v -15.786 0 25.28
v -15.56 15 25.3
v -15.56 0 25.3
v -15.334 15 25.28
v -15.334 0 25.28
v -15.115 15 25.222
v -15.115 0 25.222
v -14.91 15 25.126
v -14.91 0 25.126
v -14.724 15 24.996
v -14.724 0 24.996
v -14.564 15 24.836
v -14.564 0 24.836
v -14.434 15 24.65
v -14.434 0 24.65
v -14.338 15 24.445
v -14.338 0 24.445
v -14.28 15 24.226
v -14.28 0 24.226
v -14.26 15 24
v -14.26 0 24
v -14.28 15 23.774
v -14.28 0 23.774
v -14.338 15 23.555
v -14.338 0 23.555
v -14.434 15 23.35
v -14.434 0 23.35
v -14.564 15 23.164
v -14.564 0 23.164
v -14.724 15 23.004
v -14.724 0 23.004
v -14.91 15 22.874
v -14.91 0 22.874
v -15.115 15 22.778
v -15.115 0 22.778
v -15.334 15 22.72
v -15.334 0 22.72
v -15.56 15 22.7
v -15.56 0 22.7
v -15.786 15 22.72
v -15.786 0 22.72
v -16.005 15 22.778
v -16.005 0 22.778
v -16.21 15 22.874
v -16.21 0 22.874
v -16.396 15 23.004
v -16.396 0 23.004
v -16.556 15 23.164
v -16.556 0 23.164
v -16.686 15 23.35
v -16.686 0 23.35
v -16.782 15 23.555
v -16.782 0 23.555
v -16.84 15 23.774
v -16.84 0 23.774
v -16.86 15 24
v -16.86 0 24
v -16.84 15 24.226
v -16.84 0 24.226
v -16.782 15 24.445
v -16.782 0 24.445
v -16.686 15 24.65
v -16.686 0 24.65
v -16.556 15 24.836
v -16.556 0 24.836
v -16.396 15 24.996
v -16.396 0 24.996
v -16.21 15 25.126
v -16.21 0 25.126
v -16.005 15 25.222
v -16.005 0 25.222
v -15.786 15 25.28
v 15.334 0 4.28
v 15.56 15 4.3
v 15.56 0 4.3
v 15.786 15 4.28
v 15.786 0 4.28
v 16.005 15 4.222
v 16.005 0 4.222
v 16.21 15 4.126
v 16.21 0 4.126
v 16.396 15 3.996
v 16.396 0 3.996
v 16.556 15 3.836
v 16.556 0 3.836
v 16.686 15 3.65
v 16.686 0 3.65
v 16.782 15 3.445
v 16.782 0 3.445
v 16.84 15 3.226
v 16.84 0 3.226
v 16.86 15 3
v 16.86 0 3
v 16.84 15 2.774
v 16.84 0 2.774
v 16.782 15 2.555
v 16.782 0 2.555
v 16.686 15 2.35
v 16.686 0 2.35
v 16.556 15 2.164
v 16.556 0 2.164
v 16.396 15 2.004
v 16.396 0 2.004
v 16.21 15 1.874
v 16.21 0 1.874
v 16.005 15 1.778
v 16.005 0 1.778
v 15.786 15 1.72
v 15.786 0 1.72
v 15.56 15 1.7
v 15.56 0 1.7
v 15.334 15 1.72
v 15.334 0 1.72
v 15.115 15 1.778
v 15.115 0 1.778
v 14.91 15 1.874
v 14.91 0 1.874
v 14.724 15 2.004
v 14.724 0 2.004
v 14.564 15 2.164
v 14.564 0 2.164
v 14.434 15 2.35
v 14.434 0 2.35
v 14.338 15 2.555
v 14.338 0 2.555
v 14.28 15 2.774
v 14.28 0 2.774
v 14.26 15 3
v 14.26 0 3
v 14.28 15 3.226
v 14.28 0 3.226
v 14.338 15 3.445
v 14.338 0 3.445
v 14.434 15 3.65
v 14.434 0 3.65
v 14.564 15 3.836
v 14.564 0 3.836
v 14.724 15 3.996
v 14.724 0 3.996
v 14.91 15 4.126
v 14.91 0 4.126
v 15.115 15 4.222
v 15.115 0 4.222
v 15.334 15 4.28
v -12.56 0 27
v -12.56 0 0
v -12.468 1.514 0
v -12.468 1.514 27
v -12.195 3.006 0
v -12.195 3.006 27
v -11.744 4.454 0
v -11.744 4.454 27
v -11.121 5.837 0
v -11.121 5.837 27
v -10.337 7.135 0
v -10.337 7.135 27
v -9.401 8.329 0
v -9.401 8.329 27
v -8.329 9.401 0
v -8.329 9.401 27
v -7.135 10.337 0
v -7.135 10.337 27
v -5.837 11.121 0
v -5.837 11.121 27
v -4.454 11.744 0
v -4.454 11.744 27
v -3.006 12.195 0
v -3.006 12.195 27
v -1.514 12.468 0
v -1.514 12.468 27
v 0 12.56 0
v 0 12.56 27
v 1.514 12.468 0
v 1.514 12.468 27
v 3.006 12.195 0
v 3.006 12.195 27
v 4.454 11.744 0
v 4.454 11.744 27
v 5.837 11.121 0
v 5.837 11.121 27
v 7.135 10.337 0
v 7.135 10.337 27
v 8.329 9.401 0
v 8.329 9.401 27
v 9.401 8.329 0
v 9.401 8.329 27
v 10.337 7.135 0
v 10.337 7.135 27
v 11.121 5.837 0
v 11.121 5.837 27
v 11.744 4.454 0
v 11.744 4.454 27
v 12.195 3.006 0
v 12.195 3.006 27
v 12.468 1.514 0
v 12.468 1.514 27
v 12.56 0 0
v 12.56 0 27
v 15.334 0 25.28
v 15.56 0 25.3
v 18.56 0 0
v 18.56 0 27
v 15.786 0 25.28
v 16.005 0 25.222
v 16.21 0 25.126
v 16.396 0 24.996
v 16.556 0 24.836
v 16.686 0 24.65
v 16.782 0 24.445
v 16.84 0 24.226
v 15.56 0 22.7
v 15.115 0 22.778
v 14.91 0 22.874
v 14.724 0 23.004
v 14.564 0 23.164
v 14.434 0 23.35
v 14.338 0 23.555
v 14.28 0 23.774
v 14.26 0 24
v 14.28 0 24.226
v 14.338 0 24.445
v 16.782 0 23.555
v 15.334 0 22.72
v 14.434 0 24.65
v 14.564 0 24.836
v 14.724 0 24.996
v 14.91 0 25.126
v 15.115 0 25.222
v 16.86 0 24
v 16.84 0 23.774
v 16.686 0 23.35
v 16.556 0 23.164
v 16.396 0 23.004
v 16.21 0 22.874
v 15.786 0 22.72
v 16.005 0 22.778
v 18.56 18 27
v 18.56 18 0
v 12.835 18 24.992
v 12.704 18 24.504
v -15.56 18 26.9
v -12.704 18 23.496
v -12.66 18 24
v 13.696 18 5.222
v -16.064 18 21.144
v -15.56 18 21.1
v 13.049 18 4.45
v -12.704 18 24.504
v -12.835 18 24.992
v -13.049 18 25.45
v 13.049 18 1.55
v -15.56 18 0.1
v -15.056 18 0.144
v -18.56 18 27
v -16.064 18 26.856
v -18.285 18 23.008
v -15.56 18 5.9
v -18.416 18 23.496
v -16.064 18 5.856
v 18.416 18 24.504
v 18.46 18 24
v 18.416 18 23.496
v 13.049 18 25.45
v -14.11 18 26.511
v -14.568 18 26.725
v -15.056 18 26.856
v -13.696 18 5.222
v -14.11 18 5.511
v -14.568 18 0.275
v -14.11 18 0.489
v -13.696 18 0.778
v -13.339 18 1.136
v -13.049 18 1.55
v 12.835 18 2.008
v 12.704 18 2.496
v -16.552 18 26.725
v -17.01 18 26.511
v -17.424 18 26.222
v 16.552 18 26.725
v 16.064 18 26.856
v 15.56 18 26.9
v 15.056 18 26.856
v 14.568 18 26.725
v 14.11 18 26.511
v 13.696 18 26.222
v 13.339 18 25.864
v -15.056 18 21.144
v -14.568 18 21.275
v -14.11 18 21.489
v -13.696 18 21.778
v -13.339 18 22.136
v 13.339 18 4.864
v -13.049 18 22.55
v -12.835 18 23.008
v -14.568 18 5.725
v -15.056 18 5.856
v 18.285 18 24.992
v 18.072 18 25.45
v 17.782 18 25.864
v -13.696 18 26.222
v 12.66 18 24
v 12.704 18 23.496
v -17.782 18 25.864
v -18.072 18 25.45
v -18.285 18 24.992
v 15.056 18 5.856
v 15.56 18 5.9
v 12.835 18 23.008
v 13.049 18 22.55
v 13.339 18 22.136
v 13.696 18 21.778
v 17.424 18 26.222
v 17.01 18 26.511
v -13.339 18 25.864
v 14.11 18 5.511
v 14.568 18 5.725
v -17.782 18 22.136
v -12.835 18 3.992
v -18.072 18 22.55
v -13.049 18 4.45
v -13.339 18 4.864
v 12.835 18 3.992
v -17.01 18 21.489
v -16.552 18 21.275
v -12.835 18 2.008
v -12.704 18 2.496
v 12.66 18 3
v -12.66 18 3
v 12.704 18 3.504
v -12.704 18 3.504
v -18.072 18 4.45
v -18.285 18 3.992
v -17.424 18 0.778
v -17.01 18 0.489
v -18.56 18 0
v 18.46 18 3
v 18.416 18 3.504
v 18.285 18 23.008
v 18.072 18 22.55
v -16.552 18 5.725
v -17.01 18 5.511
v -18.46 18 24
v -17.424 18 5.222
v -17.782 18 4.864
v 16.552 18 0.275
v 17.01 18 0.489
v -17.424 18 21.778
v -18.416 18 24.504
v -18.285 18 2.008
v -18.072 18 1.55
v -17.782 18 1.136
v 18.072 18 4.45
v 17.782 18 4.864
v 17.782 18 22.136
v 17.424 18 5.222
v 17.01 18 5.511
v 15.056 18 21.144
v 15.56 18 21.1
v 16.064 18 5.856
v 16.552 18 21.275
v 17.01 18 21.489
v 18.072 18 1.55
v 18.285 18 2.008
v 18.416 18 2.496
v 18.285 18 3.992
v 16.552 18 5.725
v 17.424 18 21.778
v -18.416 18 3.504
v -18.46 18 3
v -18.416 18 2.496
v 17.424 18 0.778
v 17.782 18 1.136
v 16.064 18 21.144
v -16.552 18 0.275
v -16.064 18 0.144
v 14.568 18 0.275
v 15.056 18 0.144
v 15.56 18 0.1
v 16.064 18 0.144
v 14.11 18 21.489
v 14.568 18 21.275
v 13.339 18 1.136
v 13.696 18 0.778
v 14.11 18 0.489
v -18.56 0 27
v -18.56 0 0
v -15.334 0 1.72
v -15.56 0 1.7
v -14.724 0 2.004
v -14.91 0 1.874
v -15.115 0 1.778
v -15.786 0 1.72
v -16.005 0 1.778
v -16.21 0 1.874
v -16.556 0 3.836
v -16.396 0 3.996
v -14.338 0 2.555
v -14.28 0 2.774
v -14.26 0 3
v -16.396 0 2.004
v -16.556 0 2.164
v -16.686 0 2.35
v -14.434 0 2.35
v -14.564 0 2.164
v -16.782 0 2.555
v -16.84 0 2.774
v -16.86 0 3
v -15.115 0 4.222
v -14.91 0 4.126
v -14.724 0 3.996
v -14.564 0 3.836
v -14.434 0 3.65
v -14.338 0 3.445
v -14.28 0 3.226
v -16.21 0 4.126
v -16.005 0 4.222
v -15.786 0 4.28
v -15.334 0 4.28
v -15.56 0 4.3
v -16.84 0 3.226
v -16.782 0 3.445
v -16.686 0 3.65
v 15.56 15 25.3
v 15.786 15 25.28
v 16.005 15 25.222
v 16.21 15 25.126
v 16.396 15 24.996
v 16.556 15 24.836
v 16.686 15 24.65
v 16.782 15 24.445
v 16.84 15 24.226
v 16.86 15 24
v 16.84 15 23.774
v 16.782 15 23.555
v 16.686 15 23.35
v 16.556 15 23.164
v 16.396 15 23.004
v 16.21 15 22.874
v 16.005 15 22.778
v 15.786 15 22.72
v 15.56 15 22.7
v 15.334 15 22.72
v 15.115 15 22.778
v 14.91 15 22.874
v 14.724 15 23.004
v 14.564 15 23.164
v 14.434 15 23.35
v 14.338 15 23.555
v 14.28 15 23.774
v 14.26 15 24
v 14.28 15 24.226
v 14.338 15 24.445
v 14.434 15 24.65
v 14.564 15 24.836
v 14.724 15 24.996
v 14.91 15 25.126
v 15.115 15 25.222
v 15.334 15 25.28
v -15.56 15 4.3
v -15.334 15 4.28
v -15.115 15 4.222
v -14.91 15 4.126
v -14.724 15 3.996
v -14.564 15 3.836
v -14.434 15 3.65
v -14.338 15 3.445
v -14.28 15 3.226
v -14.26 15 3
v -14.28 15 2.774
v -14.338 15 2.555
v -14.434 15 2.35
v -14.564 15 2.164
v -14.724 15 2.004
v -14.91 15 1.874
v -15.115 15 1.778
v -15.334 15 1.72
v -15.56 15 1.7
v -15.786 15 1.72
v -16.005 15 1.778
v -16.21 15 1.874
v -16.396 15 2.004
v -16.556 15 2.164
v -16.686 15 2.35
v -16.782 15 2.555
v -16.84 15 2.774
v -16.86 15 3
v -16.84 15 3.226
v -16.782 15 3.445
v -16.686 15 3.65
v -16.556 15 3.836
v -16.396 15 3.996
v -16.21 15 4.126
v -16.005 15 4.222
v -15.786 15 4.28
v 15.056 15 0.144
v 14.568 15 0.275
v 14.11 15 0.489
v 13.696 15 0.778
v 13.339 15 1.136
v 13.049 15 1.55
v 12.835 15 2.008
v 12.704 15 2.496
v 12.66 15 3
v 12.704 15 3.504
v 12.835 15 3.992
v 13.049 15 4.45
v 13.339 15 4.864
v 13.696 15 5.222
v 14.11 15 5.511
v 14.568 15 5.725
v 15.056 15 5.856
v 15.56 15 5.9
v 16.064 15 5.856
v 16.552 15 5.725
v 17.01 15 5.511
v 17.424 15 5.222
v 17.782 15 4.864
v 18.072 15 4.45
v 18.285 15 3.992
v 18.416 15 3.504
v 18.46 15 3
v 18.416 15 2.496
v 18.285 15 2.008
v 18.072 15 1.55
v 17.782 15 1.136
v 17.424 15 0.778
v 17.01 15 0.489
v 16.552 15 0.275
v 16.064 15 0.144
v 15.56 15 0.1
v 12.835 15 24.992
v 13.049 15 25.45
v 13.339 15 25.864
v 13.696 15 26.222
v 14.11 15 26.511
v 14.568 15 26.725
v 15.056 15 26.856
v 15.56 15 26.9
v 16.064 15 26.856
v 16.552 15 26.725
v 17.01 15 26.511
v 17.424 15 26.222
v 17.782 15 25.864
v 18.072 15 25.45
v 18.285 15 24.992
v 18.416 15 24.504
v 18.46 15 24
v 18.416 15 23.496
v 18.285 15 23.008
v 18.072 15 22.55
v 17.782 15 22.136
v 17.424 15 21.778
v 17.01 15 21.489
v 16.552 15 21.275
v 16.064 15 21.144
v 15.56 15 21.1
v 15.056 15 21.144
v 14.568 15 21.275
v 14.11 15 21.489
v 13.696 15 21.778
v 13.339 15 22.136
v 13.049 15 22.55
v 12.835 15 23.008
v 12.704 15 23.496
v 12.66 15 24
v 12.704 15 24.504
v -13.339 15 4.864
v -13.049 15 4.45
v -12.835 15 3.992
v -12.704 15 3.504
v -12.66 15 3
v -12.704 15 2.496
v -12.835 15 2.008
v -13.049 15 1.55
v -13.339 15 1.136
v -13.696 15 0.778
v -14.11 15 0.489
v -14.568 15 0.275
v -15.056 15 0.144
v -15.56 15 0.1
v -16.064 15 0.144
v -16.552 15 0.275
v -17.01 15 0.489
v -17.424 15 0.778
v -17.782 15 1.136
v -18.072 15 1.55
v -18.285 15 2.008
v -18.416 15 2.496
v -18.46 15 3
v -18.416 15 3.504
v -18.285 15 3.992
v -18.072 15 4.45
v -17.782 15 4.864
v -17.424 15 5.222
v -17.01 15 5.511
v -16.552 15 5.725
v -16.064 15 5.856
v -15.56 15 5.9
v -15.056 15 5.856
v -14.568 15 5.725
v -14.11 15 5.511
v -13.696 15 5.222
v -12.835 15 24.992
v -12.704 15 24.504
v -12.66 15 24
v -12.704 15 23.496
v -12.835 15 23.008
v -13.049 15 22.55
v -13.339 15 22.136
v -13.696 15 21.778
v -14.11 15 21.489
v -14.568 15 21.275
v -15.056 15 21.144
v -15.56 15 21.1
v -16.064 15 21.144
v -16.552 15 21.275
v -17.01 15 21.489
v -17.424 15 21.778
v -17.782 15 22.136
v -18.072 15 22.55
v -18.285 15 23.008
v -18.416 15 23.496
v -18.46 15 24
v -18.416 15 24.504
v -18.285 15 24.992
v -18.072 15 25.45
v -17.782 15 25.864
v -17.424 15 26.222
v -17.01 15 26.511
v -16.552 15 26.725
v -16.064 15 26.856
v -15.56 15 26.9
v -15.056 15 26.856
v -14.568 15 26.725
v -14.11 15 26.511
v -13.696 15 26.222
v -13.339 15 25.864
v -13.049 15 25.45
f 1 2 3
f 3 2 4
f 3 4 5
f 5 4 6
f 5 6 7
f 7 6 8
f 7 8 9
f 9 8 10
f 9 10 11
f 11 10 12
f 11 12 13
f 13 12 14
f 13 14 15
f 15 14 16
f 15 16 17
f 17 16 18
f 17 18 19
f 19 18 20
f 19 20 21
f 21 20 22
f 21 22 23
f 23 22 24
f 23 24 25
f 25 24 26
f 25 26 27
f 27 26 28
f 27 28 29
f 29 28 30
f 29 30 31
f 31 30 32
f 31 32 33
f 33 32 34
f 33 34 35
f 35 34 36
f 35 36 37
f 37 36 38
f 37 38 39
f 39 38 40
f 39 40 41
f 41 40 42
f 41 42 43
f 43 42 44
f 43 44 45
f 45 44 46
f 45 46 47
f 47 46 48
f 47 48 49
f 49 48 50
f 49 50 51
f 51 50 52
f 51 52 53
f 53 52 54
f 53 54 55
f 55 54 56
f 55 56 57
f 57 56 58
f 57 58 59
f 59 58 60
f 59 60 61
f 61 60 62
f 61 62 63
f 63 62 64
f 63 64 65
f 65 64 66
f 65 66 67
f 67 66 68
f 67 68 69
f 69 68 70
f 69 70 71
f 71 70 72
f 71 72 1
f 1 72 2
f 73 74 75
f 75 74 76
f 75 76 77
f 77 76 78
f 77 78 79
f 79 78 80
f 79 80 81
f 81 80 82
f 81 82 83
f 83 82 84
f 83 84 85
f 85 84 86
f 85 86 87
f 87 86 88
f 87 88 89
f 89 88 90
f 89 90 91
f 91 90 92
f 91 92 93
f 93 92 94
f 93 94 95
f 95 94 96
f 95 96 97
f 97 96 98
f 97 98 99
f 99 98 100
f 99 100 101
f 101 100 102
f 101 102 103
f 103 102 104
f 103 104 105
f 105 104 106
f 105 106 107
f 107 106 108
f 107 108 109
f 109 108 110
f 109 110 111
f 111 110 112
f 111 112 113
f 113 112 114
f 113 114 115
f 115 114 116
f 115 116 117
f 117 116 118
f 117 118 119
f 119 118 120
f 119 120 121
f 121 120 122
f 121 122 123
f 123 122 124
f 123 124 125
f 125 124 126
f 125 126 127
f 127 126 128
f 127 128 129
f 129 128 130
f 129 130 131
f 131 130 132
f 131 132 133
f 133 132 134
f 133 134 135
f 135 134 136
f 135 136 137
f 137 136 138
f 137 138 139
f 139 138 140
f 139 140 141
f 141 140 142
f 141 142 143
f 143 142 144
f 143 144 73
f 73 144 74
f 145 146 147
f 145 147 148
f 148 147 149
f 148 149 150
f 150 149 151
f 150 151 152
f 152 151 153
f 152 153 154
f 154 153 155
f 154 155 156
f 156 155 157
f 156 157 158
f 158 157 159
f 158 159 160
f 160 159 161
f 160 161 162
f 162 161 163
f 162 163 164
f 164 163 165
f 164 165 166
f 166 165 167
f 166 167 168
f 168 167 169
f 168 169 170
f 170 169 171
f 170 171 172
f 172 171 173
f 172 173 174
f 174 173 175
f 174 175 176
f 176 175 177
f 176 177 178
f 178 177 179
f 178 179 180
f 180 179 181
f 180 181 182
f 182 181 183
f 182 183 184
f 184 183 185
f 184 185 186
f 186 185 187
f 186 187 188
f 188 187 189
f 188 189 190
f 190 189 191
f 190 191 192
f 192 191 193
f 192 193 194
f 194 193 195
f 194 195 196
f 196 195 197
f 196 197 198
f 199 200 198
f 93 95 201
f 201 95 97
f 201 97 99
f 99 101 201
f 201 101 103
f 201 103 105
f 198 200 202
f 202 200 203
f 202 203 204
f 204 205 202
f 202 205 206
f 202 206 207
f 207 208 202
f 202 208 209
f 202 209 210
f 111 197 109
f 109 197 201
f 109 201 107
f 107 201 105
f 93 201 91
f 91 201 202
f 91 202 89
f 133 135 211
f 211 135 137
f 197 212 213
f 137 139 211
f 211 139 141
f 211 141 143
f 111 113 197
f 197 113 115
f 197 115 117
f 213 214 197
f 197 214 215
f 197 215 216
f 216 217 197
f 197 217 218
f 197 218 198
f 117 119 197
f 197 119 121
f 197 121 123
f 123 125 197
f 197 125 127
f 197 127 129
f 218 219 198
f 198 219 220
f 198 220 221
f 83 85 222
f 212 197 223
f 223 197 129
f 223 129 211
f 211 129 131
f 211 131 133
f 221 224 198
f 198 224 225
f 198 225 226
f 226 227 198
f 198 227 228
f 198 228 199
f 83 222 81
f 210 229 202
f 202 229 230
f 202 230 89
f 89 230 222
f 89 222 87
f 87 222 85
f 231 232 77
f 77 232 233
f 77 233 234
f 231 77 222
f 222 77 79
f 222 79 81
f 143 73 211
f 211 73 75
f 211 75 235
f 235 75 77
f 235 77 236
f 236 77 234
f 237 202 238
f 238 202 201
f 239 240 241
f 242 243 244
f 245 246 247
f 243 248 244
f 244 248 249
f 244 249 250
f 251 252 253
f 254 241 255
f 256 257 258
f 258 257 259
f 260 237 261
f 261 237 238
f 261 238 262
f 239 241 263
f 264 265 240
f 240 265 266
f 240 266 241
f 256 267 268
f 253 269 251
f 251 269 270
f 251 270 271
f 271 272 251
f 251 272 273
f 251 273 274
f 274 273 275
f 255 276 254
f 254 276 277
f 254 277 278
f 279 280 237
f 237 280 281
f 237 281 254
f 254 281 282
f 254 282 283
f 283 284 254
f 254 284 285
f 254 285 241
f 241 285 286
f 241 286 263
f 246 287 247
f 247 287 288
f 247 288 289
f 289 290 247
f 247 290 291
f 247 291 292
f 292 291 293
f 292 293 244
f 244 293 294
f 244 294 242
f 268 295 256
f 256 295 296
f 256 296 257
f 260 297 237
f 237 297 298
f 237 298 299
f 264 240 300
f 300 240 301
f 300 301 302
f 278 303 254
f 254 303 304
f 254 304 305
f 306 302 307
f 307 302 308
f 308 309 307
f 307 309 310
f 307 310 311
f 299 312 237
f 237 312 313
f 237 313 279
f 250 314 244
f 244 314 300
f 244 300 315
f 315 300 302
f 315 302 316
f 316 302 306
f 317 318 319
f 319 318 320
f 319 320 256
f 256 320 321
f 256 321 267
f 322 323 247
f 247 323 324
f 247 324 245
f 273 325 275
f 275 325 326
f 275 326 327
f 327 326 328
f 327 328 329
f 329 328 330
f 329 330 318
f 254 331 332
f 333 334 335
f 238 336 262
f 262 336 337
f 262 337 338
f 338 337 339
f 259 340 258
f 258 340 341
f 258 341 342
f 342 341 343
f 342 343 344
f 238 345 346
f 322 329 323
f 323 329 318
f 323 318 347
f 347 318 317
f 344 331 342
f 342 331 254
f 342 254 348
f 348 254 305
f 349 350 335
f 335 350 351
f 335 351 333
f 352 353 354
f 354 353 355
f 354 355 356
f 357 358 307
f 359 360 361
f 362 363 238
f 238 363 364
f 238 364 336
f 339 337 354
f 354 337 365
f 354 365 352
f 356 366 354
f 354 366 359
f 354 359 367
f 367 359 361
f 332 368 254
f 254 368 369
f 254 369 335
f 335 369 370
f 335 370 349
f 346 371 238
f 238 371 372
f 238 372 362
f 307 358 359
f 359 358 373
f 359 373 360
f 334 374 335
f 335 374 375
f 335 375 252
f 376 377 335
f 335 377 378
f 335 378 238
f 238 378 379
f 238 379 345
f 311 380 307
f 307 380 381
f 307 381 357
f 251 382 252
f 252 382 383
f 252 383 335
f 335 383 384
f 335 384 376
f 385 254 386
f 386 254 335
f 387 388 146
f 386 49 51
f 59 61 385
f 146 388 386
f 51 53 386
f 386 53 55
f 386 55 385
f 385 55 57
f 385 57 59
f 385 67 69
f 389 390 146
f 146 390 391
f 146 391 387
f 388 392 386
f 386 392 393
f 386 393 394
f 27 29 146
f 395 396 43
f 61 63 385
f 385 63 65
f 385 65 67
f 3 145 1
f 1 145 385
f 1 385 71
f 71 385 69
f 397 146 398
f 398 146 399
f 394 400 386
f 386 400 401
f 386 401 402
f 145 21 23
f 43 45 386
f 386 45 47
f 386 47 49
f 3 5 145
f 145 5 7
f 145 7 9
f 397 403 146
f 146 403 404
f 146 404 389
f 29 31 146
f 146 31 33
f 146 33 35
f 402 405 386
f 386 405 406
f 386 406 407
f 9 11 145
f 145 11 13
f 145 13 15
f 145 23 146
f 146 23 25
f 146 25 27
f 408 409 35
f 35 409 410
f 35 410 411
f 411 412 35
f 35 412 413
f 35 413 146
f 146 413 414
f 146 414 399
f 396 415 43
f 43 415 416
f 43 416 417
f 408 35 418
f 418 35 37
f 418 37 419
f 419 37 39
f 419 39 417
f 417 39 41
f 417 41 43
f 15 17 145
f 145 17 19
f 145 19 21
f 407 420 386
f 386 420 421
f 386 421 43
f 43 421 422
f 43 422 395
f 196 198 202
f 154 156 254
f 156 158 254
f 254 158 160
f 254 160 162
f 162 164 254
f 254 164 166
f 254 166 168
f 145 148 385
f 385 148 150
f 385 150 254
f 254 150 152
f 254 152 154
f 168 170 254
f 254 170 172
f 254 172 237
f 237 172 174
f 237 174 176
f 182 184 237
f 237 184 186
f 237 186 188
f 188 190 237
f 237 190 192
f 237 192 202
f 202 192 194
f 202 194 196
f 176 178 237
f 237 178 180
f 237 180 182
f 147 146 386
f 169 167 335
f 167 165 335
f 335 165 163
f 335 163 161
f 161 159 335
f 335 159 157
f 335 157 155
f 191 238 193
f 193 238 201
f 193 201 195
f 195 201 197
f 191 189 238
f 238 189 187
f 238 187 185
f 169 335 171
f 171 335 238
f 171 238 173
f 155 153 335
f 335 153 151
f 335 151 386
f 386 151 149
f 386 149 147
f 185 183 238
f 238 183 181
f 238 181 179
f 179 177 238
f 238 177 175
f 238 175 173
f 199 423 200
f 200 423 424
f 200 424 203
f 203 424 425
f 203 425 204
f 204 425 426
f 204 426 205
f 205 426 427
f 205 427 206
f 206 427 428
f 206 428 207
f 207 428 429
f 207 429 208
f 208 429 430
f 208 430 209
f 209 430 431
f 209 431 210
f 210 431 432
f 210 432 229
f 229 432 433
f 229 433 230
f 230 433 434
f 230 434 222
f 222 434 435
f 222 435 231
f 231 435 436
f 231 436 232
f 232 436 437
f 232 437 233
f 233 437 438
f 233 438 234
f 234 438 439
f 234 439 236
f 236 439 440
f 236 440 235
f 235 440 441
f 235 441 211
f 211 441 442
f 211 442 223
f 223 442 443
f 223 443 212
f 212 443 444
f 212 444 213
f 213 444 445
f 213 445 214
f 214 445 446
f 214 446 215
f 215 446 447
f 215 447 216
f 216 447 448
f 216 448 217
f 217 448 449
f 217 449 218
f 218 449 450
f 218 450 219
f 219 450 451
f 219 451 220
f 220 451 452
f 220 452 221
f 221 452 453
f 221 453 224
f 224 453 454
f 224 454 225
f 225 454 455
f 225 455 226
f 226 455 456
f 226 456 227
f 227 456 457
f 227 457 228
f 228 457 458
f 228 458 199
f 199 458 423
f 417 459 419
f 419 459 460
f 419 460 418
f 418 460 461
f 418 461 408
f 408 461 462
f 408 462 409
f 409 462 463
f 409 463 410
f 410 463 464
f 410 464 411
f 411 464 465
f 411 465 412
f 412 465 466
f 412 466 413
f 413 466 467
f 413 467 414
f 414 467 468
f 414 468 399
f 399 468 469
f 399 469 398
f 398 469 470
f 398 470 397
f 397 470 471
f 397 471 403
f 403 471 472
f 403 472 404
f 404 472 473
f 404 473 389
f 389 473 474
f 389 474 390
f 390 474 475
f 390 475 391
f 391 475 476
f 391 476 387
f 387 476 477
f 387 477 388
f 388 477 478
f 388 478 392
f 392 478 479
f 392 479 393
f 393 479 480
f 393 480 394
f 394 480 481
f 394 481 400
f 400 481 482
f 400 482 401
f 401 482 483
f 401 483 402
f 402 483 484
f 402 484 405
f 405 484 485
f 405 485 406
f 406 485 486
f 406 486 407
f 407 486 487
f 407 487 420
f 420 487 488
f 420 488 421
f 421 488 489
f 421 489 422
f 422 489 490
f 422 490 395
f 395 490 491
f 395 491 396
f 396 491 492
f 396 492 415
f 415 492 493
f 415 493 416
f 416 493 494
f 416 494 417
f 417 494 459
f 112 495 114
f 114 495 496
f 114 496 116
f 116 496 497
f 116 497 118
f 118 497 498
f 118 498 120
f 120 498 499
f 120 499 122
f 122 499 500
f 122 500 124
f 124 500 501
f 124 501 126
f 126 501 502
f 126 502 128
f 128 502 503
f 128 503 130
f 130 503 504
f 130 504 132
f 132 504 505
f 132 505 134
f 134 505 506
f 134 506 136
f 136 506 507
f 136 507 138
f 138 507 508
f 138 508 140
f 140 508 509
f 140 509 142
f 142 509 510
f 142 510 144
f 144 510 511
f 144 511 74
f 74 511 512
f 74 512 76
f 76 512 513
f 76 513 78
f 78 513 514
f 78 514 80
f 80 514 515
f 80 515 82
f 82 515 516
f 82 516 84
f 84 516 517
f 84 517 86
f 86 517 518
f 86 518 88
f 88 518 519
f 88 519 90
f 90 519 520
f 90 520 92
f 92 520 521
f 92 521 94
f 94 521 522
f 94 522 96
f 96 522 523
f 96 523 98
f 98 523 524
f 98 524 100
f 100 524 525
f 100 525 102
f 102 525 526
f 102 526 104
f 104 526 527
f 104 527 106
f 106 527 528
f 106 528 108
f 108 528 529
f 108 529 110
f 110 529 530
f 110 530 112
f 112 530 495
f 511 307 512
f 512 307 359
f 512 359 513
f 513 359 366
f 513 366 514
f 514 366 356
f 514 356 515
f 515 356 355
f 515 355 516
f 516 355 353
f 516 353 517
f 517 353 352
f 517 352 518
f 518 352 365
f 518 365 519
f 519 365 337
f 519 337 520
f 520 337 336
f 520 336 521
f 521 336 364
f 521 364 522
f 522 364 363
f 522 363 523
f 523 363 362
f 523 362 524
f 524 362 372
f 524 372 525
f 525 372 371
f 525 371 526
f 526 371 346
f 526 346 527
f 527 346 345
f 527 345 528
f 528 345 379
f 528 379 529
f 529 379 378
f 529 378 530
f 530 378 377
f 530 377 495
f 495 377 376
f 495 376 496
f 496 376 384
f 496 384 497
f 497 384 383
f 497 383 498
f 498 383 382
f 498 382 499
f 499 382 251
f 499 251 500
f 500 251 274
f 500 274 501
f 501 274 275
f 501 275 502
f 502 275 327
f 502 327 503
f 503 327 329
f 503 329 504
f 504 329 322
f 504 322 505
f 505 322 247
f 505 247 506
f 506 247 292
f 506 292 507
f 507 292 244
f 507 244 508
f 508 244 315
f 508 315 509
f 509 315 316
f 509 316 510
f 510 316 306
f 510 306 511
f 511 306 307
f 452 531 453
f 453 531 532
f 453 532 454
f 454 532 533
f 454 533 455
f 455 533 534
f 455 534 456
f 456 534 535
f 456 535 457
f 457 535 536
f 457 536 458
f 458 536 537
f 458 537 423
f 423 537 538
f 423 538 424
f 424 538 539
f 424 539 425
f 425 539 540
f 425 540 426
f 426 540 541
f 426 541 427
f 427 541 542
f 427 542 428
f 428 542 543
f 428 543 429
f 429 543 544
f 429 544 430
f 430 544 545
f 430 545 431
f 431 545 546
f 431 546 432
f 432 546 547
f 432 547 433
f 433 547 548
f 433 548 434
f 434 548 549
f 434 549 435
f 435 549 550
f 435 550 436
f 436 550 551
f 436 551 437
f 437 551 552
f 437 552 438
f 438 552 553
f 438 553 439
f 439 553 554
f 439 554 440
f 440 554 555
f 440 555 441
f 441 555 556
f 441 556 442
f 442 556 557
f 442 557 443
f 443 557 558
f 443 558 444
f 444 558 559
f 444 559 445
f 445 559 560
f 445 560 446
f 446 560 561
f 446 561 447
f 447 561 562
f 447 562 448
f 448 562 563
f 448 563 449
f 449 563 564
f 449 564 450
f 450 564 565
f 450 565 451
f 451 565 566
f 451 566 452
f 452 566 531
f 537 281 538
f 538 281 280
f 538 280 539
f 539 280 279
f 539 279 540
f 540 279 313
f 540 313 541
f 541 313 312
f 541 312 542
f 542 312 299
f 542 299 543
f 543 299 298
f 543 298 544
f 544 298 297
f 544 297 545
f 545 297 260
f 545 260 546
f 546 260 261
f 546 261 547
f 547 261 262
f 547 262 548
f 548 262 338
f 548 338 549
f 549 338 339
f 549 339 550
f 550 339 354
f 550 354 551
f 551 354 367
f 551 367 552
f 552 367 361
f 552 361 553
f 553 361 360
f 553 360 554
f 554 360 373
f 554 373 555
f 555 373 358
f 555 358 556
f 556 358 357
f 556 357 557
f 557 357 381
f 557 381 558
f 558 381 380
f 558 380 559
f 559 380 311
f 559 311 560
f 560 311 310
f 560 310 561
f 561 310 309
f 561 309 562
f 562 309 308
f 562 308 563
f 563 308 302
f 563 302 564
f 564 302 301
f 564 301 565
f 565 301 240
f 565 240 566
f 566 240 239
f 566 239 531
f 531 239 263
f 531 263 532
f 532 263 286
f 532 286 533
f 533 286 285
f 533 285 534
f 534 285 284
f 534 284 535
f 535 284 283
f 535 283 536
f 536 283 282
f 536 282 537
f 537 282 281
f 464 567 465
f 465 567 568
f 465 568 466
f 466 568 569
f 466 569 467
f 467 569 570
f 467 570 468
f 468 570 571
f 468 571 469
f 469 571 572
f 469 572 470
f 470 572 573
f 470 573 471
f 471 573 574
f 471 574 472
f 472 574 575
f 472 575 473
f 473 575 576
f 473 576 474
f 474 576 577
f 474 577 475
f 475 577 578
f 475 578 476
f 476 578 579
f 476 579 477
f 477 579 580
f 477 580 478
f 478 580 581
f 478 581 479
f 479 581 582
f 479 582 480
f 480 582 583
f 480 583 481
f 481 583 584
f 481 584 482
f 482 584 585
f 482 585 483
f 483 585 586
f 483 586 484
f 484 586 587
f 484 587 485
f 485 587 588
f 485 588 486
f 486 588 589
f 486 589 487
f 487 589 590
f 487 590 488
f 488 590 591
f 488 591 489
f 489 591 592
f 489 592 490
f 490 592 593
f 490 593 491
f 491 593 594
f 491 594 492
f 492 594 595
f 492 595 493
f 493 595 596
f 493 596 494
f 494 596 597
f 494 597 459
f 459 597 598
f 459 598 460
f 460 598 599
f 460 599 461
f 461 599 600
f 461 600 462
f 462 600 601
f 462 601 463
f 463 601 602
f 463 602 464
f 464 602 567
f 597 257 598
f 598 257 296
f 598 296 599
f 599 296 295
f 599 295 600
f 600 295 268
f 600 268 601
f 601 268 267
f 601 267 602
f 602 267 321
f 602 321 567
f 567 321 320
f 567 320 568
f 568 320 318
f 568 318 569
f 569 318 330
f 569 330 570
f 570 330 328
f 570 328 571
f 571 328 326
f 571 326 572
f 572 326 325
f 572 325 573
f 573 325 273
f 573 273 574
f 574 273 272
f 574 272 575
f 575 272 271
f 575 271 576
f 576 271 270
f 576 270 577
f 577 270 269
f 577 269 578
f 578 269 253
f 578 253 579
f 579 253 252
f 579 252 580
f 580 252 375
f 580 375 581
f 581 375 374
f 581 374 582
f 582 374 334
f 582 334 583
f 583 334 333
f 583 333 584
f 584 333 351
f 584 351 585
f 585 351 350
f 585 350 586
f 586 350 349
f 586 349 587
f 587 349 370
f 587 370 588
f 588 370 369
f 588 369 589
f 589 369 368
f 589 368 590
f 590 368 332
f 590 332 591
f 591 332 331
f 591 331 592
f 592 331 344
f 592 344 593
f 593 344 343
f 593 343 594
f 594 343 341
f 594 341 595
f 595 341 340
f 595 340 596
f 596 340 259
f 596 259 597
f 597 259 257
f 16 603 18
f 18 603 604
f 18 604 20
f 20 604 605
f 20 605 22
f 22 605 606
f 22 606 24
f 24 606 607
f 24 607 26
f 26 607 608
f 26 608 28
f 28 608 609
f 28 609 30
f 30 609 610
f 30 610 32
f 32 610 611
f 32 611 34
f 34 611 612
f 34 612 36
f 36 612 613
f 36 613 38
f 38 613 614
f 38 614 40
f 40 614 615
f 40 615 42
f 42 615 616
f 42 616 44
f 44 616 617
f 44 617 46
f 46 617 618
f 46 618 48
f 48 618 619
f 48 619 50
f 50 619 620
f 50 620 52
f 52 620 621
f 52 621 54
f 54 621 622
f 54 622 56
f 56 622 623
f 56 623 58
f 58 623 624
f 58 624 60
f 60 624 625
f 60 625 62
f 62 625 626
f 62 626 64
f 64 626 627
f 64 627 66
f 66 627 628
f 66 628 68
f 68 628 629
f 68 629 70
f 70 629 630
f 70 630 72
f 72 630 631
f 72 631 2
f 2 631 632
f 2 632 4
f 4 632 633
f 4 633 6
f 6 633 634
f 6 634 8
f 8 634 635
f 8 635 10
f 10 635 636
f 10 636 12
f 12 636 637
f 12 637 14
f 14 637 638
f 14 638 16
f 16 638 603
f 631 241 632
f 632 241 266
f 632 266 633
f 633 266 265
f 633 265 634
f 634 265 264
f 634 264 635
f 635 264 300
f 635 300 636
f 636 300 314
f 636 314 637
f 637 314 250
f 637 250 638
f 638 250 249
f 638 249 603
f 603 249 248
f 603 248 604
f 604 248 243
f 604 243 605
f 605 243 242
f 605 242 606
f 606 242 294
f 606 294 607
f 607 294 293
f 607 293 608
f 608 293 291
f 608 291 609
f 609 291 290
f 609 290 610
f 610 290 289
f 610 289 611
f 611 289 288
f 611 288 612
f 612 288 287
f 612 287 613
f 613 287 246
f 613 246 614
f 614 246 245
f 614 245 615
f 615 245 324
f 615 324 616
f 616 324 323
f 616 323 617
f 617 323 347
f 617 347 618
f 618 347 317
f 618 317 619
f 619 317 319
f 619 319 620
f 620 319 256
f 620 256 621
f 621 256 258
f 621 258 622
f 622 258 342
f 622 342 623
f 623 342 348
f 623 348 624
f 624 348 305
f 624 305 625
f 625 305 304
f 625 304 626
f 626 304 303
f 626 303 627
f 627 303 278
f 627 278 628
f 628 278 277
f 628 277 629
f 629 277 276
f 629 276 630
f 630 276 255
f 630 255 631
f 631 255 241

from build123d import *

# Parameters (mm, degrees)
BOSS_EXTRU_1_DEPTH      = 27
ESQUISSE5_R             = 1.3
ENL_V_MAT_EXTRU_1_DEPTH = 18
ESQUISSE6_R             = 2.9
ENL_V_MAT_EXTRU_2_DEPTH = 3


with BuildPart() as part:
    # Esquisse1 → Boss.-Extru.1 (new body)
    with BuildSketch(Plane.XY):
        with BuildLine():
            Line((-12.560062385, 0), (-18.560062385, 0))
            Line((-18.560062385, 0), (-18.560062385, 18))
            Line((-18.560062385, 18), (18.560062385, 18))
            Line((18.560062385, 18), (18.560062385, 0))
            Line((18.560062385, 0), (12.560062385, 0))
            ThreePointArc((12.560062385, 0), (0, 12.560062385), (-12.560062385, 0))
        make_face()
    extrude(amount=BOSS_EXTRU_1_DEPTH)

    # Esquisse5 → Enlèv. mat.-Extru.1 (cut)
    with BuildSketch(Plane(origin=(0, 18, 0), x_dir=(1, 0, 0), z_dir=(0, 1, 0))):
        with Locations((15.560062385, -3)):
            Circle(ESQUISSE5_R)
        with Locations((15.560062385, -24)):
            Circle(ESQUISSE5_R)
        with Locations((-15.560062385, -3)):
            Circle(ESQUISSE5_R)
        with Locations((-15.560062385, -24)):
            Circle(ESQUISSE5_R)
    extrude(amount=-ENL_V_MAT_EXTRU_1_DEPTH, mode=Mode.SUBTRACT)

    # Esquisse6 → Enlèv. mat.-Extru.2 (cut)
    with BuildSketch(Plane(origin=(0, 18, 0), x_dir=(1, 0, 0), z_dir=(0, 1, 0))):
        with Locations((15.560062385, -3)):
            Circle(ESQUISSE6_R)
        with Locations((15.560062385, -24)):
            Circle(ESQUISSE6_R)
        with Locations((-15.560062385, -3)):
            Circle(ESQUISSE6_R)
        with Locations((-15.560062385, -24)):
            Circle(ESQUISSE6_R)
    extrude(amount=-ENL_V_MAT_EXTRU_2_DEPTH, mode=Mode.SUBTRACT)


solid = part.part
